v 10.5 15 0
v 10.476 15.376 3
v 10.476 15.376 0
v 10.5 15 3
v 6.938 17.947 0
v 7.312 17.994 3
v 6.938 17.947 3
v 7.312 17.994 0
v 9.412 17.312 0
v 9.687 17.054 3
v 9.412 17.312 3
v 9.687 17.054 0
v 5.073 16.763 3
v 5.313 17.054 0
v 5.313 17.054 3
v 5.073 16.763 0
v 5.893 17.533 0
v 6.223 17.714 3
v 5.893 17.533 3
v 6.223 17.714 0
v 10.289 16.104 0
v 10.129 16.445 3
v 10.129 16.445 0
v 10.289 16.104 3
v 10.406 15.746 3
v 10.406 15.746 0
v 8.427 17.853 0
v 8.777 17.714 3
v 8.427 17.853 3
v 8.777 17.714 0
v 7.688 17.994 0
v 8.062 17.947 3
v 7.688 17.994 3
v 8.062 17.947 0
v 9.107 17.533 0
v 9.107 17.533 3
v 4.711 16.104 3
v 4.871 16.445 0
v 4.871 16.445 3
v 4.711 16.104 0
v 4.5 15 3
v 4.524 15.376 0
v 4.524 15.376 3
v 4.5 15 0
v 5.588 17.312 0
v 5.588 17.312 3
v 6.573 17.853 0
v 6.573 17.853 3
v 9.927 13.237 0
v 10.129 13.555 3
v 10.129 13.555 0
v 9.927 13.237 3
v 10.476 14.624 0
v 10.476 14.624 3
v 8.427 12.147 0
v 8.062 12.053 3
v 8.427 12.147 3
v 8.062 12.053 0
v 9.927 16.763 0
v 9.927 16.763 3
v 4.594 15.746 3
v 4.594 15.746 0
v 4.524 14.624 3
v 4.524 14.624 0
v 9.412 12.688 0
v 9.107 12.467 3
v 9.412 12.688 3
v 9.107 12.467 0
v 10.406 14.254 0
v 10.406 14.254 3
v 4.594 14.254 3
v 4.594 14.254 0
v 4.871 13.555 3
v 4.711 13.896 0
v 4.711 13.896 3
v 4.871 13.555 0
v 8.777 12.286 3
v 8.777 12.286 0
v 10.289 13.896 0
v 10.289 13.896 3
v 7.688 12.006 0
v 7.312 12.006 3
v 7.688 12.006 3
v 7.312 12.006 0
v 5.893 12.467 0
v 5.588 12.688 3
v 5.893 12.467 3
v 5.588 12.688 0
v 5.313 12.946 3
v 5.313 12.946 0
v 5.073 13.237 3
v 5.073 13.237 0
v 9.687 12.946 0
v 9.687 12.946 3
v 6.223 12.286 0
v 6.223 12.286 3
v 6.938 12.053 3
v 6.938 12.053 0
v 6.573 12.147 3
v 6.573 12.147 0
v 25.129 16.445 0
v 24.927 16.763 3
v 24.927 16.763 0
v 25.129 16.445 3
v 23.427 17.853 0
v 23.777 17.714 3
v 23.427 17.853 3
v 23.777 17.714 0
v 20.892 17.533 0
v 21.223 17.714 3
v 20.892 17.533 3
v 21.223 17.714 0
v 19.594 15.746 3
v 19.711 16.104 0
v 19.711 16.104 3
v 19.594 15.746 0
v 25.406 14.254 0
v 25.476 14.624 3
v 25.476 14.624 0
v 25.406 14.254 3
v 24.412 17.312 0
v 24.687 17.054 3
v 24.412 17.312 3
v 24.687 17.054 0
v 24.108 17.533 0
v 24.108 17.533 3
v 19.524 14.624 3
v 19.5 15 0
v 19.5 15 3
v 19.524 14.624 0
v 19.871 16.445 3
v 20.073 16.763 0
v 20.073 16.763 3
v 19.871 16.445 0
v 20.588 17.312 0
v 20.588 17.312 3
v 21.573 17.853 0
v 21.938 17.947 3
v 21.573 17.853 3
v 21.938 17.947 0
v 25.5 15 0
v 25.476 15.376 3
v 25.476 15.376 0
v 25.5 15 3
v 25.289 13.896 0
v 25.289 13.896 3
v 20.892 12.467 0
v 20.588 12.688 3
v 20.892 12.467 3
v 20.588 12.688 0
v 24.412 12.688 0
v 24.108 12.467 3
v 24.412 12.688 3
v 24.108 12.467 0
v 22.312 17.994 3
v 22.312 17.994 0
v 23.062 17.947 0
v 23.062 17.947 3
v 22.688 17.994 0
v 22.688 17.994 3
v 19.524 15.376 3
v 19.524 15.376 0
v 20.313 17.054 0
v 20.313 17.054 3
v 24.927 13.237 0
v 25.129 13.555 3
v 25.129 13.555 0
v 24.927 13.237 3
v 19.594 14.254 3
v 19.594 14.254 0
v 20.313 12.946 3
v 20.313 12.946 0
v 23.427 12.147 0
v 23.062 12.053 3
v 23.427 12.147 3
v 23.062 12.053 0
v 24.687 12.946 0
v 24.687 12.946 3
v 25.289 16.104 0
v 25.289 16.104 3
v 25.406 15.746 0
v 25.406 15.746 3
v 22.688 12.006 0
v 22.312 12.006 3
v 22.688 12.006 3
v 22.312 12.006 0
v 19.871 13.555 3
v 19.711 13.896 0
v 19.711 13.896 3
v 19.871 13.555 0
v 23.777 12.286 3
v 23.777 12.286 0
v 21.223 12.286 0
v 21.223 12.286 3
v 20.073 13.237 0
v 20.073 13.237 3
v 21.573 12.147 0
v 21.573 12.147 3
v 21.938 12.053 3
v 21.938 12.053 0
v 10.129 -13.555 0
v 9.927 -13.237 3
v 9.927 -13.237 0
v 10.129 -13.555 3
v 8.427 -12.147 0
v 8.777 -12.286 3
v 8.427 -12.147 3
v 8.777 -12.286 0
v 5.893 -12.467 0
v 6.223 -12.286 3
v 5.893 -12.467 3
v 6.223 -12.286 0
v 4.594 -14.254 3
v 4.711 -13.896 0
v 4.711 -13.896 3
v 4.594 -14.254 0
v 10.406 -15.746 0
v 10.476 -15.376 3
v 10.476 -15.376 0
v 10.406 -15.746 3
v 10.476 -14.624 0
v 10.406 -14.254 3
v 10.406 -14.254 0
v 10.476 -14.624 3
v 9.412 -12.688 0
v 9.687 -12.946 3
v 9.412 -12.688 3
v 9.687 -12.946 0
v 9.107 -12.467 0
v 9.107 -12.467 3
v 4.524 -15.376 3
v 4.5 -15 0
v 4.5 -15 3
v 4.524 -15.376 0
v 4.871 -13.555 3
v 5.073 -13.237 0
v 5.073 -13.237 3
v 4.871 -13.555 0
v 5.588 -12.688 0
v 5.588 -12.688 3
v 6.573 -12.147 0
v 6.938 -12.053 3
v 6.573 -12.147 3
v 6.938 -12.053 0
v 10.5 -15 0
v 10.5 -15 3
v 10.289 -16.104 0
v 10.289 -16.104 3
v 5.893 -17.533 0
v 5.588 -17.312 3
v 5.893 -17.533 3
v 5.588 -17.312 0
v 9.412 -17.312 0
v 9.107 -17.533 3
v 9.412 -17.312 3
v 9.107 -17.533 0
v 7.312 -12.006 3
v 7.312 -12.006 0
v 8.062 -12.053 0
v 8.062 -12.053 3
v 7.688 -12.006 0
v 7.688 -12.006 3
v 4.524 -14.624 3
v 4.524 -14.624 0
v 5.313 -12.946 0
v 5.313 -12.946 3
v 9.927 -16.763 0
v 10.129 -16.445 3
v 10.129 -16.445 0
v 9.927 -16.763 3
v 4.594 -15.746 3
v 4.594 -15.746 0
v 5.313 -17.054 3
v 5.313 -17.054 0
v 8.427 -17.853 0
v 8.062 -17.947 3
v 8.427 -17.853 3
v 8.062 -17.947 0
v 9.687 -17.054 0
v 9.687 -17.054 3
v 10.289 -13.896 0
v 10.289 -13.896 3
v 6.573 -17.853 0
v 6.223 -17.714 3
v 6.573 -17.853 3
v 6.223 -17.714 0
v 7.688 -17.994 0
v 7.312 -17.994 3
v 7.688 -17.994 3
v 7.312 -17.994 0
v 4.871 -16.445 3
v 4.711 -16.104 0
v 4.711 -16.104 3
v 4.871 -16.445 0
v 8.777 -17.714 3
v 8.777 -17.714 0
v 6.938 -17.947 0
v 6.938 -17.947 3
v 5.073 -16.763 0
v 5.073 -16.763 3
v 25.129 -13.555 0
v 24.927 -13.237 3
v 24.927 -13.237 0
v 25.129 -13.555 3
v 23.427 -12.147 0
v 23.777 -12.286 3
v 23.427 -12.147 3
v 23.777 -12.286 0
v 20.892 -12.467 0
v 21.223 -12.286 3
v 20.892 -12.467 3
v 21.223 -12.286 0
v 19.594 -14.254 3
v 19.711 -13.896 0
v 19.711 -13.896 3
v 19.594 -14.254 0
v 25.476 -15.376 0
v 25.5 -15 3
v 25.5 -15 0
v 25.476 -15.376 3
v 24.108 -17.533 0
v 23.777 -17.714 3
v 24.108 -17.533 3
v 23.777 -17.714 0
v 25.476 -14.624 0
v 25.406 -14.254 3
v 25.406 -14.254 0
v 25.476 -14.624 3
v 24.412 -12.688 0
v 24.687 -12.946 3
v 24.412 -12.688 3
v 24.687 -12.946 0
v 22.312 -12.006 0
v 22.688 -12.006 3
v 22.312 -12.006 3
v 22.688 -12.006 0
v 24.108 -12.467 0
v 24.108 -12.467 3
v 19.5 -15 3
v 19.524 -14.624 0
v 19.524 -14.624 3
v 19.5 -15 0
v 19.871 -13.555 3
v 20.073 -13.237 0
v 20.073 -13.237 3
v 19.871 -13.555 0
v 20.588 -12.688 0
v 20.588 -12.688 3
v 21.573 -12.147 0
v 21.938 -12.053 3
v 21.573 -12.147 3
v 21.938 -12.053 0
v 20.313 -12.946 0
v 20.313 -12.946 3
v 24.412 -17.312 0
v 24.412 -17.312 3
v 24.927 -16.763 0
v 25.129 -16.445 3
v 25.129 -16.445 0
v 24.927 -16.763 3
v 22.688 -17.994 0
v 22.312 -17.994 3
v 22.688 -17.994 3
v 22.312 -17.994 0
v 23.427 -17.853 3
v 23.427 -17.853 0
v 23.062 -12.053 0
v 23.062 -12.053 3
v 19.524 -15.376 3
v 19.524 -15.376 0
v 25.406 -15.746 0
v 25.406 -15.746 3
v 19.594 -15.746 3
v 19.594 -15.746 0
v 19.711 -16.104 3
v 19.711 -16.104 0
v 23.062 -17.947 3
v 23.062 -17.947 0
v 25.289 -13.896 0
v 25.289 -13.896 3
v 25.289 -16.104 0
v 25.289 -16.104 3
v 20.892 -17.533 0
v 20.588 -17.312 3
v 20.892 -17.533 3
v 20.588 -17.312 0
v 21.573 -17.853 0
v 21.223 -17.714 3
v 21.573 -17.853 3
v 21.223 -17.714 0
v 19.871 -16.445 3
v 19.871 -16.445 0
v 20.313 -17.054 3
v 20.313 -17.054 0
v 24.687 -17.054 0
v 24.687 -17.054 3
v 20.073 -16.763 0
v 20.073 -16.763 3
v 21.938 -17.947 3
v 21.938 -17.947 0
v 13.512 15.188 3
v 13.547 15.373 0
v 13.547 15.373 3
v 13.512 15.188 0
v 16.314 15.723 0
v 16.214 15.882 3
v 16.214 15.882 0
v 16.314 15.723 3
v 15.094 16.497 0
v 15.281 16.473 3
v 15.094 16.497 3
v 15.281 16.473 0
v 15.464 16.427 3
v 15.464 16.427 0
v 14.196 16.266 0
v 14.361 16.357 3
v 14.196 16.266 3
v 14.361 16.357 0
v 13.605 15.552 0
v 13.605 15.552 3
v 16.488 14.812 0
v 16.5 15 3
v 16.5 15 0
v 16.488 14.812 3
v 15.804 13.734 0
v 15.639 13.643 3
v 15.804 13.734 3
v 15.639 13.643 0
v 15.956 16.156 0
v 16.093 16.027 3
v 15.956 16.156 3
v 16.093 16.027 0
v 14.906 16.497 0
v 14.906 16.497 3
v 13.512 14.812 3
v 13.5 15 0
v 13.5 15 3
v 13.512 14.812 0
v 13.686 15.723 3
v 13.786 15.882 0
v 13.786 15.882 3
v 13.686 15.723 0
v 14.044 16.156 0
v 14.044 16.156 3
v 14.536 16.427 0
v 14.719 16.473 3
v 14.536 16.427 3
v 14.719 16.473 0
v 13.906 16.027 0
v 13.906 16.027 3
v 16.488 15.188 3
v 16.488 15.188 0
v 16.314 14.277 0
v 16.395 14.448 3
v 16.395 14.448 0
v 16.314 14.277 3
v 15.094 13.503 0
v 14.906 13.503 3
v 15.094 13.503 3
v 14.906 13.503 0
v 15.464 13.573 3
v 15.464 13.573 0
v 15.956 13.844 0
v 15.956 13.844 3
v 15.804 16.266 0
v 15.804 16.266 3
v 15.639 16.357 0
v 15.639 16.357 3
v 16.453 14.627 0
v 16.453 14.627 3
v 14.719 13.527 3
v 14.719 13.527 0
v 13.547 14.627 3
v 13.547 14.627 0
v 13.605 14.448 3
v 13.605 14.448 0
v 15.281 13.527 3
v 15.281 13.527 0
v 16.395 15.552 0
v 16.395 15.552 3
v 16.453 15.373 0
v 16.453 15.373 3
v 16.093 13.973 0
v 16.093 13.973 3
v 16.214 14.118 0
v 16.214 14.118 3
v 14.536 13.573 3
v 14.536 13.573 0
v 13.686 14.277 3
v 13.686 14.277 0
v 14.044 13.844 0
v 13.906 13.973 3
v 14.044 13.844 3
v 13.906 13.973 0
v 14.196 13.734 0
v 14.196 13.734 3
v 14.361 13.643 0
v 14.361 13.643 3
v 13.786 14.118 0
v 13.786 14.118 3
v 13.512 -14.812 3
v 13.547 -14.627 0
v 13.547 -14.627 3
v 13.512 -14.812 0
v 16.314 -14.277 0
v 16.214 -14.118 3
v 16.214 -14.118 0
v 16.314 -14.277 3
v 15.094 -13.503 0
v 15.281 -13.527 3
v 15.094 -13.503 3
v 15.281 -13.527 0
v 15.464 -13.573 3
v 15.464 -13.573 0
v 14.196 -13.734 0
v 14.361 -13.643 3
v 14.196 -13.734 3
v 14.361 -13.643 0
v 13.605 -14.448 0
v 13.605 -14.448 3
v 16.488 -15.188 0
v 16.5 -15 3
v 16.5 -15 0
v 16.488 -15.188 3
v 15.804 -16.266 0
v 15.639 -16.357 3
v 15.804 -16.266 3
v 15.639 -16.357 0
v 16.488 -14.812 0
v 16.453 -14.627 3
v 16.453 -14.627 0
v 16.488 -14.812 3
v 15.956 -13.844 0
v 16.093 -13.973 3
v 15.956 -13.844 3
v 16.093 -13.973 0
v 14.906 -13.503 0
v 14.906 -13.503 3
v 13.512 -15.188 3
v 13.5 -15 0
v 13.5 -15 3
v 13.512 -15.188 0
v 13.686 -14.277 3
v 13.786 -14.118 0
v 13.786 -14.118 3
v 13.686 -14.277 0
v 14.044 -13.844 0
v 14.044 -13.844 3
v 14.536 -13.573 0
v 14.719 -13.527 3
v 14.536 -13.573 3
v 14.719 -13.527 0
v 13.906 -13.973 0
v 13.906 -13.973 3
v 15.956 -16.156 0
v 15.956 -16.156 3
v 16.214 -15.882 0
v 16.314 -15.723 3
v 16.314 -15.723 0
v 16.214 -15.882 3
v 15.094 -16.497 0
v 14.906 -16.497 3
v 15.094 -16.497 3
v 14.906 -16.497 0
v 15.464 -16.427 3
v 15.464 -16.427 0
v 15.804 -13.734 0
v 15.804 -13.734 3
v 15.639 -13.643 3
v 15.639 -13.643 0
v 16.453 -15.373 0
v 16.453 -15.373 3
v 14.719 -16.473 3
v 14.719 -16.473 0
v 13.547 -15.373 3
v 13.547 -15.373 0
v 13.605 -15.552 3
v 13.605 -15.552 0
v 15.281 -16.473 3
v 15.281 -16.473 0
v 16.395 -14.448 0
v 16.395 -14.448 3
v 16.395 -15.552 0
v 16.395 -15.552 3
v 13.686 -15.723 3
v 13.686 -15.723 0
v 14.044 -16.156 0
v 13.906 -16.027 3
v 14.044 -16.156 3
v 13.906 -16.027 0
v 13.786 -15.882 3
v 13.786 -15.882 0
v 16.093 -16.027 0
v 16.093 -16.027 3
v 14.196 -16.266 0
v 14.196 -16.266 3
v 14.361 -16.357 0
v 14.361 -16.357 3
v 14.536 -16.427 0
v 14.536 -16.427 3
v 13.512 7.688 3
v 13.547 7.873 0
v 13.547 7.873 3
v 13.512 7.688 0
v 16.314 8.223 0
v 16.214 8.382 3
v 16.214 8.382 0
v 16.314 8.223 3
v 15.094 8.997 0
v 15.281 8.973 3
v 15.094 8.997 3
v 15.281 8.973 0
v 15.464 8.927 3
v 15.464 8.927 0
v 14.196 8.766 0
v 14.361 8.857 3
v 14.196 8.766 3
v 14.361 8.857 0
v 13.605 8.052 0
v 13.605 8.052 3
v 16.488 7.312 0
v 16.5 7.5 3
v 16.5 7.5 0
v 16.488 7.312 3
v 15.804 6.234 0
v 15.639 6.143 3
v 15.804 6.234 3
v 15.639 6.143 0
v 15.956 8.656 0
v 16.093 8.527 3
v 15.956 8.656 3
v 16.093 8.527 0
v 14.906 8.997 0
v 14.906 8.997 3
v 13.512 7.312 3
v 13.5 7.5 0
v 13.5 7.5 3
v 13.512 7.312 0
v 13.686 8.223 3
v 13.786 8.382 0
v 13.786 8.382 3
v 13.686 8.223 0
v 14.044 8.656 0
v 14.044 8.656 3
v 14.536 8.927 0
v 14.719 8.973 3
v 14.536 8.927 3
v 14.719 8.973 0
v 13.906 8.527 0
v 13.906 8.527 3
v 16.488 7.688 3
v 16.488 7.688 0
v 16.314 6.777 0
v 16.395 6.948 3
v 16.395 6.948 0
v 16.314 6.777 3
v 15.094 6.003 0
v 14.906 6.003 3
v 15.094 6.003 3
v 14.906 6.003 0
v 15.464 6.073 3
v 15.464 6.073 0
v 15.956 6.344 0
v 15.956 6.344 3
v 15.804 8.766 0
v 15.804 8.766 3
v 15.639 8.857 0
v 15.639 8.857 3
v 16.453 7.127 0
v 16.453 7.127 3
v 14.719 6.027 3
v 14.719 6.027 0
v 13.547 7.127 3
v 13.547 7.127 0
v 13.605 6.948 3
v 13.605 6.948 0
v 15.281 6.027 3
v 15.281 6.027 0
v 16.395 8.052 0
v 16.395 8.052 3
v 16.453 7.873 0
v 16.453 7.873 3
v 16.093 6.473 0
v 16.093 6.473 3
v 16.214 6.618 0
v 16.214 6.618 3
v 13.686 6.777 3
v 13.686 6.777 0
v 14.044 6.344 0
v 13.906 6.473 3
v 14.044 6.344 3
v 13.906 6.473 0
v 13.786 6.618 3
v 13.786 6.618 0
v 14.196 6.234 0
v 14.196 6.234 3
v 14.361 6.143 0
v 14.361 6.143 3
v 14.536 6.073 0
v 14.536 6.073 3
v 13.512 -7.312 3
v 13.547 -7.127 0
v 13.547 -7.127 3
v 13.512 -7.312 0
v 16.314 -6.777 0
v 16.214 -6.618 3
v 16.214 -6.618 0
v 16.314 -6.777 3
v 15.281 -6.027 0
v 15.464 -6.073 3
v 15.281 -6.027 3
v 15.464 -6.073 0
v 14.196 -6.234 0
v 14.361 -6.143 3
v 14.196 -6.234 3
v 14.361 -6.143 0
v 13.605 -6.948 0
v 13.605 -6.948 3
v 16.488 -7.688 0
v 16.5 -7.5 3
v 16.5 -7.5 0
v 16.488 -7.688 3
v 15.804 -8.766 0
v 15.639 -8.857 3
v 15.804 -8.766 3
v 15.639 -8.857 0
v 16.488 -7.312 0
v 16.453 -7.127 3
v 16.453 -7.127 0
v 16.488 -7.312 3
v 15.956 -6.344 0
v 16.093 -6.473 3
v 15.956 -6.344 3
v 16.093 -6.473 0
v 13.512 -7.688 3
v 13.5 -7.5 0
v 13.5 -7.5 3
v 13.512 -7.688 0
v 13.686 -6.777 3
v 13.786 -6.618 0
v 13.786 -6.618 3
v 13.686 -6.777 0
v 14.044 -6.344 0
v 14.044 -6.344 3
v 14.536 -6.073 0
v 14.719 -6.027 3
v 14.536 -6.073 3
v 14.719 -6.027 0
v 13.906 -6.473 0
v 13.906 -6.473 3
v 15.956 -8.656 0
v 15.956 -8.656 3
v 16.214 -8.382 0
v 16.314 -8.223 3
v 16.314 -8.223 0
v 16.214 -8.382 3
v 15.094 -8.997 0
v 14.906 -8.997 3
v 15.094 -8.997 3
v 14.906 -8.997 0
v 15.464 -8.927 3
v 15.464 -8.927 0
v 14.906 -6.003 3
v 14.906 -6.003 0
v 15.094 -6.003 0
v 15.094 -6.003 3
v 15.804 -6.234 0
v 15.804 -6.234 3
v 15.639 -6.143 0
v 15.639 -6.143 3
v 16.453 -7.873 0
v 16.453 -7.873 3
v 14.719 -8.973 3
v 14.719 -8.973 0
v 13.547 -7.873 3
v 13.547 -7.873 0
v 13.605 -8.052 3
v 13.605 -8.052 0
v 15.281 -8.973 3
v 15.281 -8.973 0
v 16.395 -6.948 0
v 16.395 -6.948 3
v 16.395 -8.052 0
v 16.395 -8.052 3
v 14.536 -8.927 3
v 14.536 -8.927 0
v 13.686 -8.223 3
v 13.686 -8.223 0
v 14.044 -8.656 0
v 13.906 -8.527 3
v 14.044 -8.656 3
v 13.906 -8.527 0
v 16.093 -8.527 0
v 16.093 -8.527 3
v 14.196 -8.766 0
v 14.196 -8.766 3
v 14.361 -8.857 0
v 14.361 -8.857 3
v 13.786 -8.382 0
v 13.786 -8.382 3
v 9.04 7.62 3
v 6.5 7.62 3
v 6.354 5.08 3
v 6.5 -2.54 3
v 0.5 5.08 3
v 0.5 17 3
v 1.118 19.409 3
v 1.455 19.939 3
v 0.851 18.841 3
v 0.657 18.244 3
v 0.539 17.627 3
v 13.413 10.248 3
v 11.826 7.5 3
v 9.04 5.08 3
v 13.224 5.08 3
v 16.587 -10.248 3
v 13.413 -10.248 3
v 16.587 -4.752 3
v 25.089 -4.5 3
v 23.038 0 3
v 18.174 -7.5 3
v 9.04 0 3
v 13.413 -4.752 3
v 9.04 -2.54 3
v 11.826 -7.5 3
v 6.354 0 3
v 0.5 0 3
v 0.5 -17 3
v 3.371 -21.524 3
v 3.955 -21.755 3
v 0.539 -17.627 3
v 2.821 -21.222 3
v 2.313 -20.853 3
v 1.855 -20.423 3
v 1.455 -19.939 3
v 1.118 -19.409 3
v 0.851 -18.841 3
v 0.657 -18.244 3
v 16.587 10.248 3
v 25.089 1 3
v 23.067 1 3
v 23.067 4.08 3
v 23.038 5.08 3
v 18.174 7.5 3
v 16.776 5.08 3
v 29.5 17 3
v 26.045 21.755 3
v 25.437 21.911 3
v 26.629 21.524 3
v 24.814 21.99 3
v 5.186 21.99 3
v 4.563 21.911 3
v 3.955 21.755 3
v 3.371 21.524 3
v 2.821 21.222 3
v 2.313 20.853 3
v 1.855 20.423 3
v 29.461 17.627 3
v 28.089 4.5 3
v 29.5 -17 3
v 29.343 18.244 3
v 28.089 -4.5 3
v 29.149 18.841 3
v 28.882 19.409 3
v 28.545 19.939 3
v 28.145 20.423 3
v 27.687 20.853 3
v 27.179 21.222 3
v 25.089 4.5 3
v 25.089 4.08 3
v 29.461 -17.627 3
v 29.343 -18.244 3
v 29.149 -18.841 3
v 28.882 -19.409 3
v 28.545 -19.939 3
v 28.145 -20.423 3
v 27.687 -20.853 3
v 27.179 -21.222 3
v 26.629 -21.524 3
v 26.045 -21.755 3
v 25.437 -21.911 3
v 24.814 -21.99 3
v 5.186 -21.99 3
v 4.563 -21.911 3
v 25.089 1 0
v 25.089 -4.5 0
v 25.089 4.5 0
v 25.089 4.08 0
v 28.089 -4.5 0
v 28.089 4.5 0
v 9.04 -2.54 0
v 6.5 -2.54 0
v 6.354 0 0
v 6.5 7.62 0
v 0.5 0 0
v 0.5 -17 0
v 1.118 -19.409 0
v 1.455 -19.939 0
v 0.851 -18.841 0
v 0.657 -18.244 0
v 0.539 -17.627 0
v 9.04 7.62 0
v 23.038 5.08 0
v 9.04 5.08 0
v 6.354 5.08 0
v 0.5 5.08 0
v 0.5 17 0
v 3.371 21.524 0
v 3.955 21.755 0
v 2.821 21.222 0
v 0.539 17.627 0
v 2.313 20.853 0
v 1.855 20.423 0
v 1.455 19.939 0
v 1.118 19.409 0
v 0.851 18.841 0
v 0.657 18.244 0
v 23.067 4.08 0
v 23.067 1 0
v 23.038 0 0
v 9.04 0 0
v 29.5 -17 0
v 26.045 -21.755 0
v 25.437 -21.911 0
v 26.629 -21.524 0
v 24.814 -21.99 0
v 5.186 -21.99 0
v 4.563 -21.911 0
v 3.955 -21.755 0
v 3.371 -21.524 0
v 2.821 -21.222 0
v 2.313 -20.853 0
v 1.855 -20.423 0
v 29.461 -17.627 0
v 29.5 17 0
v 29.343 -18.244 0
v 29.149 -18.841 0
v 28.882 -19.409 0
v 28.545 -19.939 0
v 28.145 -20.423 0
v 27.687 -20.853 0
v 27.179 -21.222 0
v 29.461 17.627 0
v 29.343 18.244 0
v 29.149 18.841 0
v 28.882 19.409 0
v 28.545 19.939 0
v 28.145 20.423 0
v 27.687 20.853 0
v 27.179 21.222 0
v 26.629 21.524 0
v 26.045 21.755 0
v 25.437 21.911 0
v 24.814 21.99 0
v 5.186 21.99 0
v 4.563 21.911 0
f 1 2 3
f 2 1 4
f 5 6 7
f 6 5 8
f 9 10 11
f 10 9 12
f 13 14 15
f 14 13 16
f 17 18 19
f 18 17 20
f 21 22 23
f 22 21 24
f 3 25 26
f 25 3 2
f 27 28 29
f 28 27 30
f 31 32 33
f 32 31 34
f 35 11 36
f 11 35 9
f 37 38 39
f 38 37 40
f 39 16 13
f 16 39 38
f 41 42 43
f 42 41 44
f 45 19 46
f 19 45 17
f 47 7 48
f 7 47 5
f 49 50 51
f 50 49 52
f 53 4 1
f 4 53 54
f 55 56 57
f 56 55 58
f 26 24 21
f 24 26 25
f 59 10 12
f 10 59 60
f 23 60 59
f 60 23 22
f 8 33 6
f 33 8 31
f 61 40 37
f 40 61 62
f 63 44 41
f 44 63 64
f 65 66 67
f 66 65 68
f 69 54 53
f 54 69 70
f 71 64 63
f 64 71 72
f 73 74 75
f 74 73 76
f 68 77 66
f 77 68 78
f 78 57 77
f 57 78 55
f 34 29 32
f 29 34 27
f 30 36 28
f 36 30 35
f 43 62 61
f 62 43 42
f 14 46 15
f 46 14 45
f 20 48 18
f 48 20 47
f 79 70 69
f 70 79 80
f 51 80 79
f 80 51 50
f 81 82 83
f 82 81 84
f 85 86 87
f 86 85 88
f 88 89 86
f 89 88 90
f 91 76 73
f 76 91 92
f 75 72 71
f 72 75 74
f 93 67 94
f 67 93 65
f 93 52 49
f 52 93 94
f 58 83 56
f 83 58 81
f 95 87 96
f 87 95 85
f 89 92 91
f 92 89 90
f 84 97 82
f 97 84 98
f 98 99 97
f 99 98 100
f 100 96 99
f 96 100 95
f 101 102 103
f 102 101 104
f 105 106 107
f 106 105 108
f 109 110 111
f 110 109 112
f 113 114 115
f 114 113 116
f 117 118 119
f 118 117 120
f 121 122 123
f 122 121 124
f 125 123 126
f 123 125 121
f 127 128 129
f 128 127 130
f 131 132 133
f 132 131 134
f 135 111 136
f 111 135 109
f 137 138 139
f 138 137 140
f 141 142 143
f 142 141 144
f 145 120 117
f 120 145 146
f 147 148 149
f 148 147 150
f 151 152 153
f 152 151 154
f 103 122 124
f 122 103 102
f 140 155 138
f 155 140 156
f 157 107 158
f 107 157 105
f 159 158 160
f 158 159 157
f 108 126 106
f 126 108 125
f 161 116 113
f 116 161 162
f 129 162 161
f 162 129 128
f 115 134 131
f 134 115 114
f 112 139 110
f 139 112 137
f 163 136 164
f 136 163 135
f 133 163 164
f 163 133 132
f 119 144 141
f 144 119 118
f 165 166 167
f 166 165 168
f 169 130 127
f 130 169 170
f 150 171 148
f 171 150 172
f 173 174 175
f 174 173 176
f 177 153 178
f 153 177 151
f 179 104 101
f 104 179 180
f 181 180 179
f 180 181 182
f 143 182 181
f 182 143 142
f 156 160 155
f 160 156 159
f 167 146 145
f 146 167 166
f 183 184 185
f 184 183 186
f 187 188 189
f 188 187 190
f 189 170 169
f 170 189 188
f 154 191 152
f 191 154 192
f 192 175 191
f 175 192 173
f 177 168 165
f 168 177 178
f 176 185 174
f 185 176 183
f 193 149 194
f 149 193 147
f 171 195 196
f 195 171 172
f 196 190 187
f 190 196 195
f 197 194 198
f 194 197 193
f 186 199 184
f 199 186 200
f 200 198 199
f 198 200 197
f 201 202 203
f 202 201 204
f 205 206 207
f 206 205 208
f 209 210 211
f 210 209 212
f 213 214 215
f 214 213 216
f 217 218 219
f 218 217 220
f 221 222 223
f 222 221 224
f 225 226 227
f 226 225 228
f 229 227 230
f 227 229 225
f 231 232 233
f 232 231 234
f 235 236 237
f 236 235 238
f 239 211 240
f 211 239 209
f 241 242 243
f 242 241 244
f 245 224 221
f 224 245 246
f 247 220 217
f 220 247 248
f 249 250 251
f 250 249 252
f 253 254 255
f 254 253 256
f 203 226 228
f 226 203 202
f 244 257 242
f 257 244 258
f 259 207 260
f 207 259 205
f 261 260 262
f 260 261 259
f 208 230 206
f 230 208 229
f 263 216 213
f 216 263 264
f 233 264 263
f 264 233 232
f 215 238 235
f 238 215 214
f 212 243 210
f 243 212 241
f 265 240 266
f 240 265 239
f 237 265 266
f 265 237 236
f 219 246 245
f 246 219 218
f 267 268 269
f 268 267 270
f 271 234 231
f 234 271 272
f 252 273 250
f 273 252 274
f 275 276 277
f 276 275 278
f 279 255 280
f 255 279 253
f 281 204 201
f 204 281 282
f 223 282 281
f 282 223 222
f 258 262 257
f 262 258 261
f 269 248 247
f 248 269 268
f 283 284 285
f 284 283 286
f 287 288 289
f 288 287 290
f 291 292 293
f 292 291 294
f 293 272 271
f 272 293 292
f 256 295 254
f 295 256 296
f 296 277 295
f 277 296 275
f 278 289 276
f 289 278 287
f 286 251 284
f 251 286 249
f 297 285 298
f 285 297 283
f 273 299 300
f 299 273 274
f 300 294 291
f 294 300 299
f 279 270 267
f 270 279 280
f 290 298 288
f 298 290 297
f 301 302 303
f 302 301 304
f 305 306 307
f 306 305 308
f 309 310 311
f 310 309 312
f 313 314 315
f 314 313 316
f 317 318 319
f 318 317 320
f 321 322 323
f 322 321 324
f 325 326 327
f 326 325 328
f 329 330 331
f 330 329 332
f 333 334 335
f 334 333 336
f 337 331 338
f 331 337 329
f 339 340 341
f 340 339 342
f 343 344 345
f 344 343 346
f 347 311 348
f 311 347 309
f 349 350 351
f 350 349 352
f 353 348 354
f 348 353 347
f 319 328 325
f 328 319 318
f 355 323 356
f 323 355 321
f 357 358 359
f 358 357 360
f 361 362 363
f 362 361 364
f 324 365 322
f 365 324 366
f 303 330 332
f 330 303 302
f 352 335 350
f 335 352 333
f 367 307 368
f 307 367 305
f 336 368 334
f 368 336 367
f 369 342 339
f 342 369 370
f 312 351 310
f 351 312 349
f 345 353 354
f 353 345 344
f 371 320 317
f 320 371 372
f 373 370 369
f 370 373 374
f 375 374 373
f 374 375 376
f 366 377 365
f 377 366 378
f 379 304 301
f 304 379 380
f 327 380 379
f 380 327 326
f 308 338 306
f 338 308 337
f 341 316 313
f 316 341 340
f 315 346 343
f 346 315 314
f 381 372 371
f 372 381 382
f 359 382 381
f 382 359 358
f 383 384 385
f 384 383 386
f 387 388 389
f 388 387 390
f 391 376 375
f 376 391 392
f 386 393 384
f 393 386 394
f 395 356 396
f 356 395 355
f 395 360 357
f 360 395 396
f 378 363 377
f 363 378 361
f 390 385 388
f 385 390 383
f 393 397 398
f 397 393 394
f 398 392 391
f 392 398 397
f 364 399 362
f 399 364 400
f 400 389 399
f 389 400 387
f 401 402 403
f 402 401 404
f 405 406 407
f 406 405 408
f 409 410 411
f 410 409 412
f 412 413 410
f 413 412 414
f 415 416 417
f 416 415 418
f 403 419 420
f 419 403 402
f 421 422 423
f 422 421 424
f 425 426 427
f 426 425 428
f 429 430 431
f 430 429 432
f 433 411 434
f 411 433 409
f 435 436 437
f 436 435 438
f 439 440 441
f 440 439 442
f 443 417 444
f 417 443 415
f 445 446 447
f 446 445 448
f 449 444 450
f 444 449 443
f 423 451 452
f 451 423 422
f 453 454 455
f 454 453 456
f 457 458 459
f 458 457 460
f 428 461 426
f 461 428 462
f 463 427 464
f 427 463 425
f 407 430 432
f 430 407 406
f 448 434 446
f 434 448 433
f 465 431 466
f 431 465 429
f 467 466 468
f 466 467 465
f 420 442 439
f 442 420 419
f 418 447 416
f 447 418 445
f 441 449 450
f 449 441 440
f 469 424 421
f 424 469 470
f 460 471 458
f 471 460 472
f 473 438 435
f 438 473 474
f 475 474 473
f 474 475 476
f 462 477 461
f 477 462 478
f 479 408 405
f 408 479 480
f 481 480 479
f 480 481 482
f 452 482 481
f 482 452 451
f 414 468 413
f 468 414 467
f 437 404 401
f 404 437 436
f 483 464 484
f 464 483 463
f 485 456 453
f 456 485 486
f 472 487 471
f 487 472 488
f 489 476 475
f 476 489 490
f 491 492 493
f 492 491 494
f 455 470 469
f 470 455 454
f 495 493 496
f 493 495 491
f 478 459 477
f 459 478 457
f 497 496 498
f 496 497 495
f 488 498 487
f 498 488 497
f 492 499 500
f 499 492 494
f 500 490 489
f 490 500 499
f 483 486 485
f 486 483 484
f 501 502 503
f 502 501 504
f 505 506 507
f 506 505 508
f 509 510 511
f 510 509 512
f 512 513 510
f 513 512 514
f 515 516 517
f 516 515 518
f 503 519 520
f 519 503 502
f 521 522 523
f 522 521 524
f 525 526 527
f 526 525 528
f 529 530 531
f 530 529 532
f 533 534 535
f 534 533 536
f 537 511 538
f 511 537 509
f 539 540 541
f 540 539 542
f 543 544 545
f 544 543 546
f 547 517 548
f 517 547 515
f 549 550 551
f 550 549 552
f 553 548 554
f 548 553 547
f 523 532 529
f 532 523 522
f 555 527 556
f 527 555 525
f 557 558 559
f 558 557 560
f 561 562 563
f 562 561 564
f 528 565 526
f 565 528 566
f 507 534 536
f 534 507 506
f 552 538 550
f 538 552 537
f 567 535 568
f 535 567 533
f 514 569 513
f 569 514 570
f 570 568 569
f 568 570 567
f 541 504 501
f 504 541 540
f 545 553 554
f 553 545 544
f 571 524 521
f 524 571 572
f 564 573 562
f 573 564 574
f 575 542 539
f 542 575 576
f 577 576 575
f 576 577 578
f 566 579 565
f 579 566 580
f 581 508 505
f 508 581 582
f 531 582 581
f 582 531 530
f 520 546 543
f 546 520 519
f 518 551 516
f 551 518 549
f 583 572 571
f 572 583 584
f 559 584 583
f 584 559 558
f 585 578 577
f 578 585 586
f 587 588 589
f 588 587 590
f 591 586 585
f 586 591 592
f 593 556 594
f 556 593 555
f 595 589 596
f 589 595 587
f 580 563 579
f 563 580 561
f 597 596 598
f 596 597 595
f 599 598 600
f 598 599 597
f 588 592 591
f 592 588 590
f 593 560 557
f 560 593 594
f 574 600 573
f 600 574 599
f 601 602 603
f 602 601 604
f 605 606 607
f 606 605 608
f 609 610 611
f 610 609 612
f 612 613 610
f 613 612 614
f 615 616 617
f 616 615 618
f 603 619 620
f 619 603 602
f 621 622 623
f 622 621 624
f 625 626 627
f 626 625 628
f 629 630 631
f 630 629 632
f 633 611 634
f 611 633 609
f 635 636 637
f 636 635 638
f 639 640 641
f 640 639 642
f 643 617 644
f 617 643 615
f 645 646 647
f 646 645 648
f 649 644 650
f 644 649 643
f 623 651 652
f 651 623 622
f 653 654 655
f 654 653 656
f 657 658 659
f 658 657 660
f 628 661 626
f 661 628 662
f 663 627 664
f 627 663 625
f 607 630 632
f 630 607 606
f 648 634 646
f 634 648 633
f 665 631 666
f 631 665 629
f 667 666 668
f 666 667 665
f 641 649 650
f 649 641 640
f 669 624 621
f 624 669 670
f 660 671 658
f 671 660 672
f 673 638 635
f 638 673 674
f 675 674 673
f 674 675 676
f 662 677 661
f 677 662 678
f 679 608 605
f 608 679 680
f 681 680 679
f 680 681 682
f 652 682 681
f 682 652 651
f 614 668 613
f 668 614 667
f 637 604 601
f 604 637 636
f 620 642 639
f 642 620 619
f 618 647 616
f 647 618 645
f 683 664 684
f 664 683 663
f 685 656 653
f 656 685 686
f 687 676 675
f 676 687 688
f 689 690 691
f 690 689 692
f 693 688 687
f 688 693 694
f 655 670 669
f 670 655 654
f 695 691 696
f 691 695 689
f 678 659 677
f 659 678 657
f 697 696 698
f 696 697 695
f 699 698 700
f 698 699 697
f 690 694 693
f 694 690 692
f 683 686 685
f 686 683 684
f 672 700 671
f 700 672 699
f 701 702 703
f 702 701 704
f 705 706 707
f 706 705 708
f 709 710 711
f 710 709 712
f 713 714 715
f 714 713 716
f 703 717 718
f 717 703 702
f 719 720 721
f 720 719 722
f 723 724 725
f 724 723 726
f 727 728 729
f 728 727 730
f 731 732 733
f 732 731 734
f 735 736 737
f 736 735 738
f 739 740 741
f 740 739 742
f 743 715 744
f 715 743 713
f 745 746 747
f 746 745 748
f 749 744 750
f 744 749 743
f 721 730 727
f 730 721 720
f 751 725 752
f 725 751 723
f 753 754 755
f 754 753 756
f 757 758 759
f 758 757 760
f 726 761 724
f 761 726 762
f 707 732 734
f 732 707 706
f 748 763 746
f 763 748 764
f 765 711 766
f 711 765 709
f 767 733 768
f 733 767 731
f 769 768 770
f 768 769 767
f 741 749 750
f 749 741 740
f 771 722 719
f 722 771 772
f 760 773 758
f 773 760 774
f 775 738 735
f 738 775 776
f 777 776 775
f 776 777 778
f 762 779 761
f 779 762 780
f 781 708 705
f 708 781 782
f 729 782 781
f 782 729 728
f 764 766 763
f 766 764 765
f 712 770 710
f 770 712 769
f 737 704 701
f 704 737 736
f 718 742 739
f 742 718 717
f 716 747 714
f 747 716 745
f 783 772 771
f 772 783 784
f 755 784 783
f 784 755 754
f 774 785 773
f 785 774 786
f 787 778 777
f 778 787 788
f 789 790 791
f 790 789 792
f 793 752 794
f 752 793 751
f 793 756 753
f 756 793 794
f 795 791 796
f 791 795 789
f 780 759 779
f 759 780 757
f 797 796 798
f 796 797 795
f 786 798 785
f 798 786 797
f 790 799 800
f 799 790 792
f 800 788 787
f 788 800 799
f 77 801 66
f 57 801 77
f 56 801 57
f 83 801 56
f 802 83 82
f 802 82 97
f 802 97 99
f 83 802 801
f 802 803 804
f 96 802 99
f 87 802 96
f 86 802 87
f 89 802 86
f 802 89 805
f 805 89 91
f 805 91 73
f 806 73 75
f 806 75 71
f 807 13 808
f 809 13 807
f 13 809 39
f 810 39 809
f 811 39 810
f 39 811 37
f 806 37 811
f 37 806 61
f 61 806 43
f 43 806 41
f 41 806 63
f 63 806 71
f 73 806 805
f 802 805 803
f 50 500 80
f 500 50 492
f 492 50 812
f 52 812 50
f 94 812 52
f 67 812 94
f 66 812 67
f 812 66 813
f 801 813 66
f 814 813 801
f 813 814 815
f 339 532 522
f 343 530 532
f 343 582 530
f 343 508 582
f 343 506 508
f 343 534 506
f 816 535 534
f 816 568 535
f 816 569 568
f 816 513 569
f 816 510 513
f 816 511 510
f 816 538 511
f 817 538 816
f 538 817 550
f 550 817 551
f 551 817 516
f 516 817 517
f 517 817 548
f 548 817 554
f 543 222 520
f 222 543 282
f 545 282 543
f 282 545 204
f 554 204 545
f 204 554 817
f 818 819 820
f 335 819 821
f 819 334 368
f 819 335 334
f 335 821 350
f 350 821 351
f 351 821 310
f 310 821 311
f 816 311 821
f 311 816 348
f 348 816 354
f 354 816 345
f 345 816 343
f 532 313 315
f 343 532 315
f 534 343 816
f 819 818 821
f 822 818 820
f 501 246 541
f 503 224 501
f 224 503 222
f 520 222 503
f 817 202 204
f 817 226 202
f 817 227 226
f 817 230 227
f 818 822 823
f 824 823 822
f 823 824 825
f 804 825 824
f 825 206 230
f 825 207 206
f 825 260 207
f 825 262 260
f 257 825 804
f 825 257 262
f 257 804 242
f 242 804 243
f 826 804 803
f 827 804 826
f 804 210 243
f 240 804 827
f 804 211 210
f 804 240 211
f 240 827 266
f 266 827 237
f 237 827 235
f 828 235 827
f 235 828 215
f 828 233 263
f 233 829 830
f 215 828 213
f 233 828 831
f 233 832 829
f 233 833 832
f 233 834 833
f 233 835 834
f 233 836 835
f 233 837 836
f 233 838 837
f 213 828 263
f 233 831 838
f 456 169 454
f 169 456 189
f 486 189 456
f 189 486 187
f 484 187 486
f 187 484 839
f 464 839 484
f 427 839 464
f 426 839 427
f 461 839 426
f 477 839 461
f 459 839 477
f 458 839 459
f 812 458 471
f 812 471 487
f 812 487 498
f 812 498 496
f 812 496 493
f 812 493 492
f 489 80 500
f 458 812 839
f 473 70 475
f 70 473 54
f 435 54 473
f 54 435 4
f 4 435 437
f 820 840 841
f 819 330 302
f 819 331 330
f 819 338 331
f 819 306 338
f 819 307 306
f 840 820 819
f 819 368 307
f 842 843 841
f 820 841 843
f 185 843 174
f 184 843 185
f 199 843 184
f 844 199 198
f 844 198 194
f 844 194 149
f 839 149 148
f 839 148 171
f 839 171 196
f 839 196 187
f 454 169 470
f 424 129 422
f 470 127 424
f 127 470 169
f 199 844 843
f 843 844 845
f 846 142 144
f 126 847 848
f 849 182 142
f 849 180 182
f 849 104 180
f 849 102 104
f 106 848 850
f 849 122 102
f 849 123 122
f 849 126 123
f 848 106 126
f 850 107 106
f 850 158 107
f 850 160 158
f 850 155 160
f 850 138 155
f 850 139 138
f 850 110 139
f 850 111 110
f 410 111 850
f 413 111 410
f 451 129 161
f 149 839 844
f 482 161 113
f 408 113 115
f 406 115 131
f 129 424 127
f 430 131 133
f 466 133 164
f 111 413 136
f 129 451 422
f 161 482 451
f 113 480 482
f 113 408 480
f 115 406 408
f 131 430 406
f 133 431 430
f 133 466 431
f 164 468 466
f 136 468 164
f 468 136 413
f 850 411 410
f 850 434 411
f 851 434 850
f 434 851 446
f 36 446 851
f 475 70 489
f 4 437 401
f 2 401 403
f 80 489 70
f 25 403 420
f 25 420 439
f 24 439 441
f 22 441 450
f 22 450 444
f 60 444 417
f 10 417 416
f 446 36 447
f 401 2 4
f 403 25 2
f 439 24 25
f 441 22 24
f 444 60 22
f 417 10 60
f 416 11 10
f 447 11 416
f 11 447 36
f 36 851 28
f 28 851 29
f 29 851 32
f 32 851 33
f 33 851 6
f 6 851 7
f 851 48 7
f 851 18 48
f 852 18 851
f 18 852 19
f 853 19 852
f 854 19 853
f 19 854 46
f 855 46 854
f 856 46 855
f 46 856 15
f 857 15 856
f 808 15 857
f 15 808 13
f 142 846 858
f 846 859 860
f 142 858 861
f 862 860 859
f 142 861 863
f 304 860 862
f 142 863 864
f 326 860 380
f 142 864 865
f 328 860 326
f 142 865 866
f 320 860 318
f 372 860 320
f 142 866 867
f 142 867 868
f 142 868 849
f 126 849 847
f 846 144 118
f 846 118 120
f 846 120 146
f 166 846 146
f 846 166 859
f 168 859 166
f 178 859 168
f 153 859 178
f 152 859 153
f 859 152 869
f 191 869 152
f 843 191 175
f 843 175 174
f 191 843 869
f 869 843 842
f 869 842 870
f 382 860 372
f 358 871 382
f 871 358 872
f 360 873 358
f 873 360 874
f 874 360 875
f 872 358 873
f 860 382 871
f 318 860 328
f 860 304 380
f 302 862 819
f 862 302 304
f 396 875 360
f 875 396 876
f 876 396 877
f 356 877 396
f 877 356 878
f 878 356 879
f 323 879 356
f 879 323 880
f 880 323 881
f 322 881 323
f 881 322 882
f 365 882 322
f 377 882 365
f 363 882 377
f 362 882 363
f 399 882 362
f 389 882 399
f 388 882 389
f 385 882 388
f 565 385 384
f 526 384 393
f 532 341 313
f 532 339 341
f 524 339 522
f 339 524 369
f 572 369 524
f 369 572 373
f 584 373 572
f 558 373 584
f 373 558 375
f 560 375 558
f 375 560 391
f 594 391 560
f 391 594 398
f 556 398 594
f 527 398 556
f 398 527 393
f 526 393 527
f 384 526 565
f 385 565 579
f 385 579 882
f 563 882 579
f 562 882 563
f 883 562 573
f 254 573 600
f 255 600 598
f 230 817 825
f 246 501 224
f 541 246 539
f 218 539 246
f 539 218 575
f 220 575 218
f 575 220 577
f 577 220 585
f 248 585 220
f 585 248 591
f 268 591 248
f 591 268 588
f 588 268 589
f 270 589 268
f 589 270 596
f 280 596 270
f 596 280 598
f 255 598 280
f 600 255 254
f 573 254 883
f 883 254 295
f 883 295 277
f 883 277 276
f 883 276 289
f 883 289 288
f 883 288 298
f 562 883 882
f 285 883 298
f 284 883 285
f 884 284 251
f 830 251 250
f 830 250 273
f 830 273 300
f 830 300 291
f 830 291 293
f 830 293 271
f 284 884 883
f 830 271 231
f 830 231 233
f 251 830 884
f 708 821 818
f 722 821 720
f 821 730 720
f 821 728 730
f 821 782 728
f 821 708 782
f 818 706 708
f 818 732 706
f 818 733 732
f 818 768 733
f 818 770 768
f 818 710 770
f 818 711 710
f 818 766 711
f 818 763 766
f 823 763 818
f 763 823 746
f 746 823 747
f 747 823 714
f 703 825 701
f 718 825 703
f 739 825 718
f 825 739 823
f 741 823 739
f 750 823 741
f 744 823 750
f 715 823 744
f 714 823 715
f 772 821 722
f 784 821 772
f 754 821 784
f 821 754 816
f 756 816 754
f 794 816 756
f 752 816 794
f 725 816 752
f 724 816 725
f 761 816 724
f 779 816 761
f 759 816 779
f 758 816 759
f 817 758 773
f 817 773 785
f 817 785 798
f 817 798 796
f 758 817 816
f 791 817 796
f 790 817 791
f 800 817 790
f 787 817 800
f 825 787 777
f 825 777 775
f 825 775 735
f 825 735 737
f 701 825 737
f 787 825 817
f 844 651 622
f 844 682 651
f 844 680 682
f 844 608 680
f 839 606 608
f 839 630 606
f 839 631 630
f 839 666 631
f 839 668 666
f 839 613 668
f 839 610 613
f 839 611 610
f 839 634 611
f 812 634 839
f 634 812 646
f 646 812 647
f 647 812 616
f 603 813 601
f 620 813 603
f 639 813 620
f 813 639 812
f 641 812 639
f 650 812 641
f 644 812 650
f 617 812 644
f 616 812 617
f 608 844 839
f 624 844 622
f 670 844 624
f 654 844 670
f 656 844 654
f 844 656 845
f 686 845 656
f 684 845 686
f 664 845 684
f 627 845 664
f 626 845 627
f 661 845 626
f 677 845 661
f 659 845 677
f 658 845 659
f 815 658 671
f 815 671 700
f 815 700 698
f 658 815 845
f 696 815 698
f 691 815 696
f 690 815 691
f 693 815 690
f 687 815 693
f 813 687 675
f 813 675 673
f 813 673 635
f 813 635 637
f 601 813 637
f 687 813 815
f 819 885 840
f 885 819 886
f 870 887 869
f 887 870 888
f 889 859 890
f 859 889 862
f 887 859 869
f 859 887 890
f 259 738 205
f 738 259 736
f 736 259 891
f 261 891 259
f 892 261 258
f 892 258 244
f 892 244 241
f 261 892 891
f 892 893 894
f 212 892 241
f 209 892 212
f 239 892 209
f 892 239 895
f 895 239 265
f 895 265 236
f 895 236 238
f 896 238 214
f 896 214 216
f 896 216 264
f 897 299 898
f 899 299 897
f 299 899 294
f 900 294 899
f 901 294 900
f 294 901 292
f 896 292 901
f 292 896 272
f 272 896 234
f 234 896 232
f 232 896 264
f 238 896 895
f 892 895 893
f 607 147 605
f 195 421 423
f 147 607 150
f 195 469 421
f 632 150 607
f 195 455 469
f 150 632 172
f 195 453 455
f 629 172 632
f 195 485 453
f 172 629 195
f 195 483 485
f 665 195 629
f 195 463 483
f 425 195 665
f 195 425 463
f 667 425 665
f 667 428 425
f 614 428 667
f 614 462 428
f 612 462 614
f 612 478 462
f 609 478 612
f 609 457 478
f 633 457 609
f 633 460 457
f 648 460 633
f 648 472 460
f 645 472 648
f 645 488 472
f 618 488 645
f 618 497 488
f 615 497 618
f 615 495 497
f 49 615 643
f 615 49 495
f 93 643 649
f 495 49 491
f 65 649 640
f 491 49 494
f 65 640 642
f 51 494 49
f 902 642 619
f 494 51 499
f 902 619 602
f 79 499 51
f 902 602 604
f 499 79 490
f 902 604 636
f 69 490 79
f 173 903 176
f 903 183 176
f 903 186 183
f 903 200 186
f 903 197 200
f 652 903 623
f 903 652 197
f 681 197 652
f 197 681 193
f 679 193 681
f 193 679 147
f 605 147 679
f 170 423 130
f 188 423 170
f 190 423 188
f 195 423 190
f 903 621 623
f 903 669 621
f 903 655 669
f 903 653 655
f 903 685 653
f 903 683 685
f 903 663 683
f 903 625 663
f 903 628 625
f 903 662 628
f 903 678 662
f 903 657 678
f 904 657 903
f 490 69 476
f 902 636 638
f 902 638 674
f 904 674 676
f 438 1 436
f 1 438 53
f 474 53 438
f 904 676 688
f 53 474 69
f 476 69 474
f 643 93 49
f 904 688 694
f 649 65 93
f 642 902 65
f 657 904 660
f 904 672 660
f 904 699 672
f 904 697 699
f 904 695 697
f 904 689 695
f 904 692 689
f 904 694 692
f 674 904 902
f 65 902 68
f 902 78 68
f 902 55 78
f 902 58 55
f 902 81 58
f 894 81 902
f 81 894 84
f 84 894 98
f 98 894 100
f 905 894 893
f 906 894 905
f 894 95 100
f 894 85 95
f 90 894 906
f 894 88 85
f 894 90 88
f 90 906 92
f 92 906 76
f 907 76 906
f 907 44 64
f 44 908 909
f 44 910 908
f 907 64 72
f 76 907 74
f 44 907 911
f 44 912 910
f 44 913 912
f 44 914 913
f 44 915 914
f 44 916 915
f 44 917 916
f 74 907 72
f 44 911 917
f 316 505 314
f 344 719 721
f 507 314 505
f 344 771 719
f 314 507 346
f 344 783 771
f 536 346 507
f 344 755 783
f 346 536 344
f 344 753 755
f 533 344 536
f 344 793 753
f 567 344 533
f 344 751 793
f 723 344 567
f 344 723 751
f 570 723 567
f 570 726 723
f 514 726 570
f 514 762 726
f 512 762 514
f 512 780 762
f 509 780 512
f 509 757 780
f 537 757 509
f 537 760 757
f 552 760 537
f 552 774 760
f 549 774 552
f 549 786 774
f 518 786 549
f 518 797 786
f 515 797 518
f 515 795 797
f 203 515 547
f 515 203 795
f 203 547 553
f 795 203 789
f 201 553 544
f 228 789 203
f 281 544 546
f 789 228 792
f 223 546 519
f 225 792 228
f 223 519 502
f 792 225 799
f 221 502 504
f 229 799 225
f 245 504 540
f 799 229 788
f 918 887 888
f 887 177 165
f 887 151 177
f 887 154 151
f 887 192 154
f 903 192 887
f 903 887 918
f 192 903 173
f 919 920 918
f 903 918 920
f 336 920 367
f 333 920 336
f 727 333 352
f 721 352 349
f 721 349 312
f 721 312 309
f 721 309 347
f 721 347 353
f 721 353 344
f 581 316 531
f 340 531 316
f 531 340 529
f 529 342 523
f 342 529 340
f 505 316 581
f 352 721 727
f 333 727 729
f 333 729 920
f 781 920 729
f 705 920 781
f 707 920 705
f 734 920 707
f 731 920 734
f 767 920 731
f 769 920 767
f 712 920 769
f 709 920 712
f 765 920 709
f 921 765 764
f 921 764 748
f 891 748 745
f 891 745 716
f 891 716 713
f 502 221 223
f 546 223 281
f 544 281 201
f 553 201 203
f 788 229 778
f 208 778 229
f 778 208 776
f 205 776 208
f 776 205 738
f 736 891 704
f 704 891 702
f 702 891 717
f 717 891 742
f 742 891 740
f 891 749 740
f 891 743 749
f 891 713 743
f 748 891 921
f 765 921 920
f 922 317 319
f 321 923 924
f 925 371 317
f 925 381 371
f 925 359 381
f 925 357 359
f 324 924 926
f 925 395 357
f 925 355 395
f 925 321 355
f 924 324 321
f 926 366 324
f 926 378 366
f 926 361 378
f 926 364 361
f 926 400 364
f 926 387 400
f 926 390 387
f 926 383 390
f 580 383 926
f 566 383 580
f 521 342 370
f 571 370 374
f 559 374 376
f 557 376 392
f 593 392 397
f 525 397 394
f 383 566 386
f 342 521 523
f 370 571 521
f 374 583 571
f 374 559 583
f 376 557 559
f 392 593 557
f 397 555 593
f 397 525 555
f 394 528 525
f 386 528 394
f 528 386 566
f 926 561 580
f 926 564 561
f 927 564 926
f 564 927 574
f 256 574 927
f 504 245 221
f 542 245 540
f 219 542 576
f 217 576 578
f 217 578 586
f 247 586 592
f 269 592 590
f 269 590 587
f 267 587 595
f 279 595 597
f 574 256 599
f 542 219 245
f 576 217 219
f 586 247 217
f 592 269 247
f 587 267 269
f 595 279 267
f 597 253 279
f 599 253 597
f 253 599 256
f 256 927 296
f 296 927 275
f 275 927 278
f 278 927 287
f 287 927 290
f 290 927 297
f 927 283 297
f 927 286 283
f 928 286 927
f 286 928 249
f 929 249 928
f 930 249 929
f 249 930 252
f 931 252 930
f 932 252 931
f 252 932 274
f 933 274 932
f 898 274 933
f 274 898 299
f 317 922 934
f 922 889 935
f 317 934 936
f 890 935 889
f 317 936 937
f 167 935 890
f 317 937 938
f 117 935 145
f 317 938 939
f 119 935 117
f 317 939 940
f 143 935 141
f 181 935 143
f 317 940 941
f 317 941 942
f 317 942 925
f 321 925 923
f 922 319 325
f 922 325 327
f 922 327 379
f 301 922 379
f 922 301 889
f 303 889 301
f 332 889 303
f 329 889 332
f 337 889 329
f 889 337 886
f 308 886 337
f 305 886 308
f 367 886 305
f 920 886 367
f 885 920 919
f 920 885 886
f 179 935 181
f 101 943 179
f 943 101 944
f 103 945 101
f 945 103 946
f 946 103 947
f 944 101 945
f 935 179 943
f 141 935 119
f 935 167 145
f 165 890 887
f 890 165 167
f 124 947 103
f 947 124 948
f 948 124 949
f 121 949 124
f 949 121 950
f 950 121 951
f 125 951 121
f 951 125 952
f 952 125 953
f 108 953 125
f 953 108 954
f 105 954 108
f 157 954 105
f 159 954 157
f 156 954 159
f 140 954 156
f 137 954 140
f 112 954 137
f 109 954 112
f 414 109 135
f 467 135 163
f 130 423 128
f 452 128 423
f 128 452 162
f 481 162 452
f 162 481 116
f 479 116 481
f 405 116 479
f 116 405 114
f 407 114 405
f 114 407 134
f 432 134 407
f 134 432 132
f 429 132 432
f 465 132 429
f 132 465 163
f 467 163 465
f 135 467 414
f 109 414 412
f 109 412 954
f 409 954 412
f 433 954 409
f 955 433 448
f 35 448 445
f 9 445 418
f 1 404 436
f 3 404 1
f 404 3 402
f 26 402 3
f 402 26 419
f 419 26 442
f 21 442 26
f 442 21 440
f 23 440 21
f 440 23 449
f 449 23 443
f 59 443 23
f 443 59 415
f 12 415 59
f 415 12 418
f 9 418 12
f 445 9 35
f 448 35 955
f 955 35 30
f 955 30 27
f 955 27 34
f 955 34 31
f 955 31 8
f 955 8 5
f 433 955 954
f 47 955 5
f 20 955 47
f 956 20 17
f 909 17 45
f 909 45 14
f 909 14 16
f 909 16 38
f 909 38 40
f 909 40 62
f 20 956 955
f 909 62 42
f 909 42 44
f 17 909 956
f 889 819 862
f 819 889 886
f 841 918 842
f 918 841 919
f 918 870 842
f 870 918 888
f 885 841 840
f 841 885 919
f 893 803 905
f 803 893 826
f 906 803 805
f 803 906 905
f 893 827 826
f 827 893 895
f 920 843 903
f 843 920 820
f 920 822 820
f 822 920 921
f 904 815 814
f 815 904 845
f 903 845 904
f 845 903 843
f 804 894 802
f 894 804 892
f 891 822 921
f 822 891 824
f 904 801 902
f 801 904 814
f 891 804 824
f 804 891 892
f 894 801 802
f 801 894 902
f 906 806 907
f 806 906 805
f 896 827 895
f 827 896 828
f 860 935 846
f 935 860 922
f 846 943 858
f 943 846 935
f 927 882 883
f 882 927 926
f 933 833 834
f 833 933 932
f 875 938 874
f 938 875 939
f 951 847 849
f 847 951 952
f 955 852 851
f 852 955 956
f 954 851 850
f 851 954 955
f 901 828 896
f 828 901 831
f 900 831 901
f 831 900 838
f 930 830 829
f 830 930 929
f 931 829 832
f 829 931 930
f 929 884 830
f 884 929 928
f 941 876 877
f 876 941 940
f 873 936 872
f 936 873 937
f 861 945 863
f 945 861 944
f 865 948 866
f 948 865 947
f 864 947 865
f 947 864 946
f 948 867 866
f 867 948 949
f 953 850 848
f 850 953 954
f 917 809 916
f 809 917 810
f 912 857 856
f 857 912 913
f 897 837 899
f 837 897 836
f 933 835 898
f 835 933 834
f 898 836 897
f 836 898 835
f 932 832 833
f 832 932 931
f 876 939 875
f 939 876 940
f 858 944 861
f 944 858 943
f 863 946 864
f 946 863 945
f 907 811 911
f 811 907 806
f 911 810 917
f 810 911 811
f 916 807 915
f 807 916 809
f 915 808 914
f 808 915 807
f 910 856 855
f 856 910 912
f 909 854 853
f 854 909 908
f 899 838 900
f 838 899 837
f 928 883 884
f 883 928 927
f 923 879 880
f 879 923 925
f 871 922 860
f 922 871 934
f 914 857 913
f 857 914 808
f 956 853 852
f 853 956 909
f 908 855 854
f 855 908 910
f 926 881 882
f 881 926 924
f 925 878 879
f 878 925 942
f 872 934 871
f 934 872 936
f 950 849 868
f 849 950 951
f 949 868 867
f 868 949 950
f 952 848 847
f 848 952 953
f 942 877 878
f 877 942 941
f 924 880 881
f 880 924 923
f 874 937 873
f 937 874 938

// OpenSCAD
$fn = 50;


difference() {
	union() {
		translate(v = [15.0000000000, 0, 0]) {
			rotate(a = [0, 0, 0]) {
				hull() {
					translate(v = [-9.5000000000, 17.0000000000, 0]) {
						rotate(a = [0, 0, 0]) {
							translate(v = [0, 0, 0]) {
								rotate(a = [0, 0, 0]) {
									cylinder(h = 3, r = 5);
								}
							}
						}
					}
					translate(v = [9.5000000000, 17.0000000000, 0]) {
						rotate(a = [0, 0, 0]) {
							translate(v = [0, 0, 0]) {
								rotate(a = [0, 0, 0]) {
									cylinder(h = 3, r = 5);
								}
							}
						}
					}
					translate(v = [-9.5000000000, -17.0000000000, 0]) {
						rotate(a = [0, 0, 0]) {
							translate(v = [0, 0, 0]) {
								rotate(a = [0, 0, 0]) {
									cylinder(h = 3, r = 5);
								}
							}
						}
					}
					translate(v = [9.5000000000, -17.0000000000, 0]) {
						rotate(a = [0, 0, 0]) {
							translate(v = [0, 0, 0]) {
								rotate(a = [0, 0, 0]) {
									cylinder(h = 3, r = 5);
								}
							}
						}
					}
				}
			}
		}
	}
	union() {
		translate(v = [7.5000000000, 15.0000000000, -125.0000000000]) {
			rotate(a = [0, 0, 0]) {
				cylinder(h = 250, r = 3.0000000000);
			}
		}
		translate(v = [22.5000000000, 15.0000000000, -125.0000000000]) {
			rotate(a = [0, 0, 0]) {
				cylinder(h = 250, r = 3.0000000000);
			}
		}
		translate(v = [7.5000000000, -15.0000000000, -125.0000000000]) {
			rotate(a = [0, 0, 0]) {
				cylinder(h = 250, r = 3.0000000000);
			}
		}
		translate(v = [22.5000000000, -15.0000000000, -125.0000000000]) {
			rotate(a = [0, 0, 0]) {
				cylinder(h = 250, r = 3.0000000000);
			}
		}
		translate(v = [7.5000000000, 15.0000000000, -125.0000000000]) {
			rotate(a = [0, 0, 0]) {
				cylinder(h = 250, r = 1.5000000000);
			}
		}
		translate(v = [15.0000000000, 15.0000000000, -125.0000000000]) {
			rotate(a = [0, 0, 0]) {
				cylinder(h = 250, r = 1.5000000000);
			}
		}
		translate(v = [22.5000000000, 15.0000000000, -125.0000000000]) {
			rotate(a = [0, 0, 0]) {
				cylinder(h = 250, r = 1.5000000000);
			}
		}
		translate(v = [7.5000000000, -15.0000000000, -125.0000000000]) {
			rotate(a = [0, 0, 0]) {
				cylinder(h = 250, r = 1.5000000000);
			}
		}
		translate(v = [15.0000000000, -15.0000000000, -125.0000000000]) {
			rotate(a = [0, 0, 0]) {
				cylinder(h = 250, r = 1.5000000000);
			}
		}
		translate(v = [22.5000000000, -15.0000000000, -125.0000000000]) {
			rotate(a = [0, 0, 0]) {
				cylinder(h = 250, r = 1.5000000000);
			}
		}
		translate(v = [15, 7.5000000000, -125.0000000000]) {
			rotate(a = [0, 0, 0]) {
				cylinder(h = 250, r = 1.5000000000);
			}
		}
		translate(v = [15, -7.5000000000, -125.0000000000]) {
			rotate(a = [0, 0, 0]) {
				cylinder(h = 250, r = 1.5000000000);
			}
		}
		translate(v = [15, 7.5000000000, 3]) {
			rotate(a = [0, 0, 0]) {
				translate(v = [0, 0, 0]) {
					rotate(a = [0, 0, 0]) {
						linear_extrude(height = 2.5000000000) {
							polygon(points = [[3.1735000000, 0.0000000000], [1.5867500000, 2.7483316189], [-1.5867500000, 2.7483316189], [-3.1735000000, 0.0000000000], [-1.5867500000, -2.7483316189], [1.5867500000, -2.7483316189]]);
						}
					}
				}
			}
		}
		translate(v = [15, -7.5000000000, 3]) {
			rotate(a = [0, 0, 0]) {
				translate(v = [0, 0, 0]) {
					rotate(a = [0, 0, 0]) {
						linear_extrude(height = 2.5000000000) {
							polygon(points = [[3.1735000000, 0.0000000000], [1.5867500000, 2.7483316189], [-1.5867500000, 2.7483316189], [-3.1735000000, 0.0000000000], [-1.5867500000, -2.7483316189], [1.5867500000, -2.7483316189]]);
						}
					}
				}
			}
		}
		translate(v = [25.0890000000, -4.5000000000, 0]) {
			rotate(a = [0, 0, 0]) {
				cube(size = [3, 9, 10]);
			}
		}
		translate(v = [23.0670000000, 1.0000000000, 0]) {
			rotate(a = [0, 0, 0]) {
				cube(size = [5, 3.0800000000, 3]);
			}
		}
		translate(v = [0.3540000000, 0.0000000000, 0]) {
			rotate(a = [0, 0, 0]) {
				cube(size = [6, 5.0800000000, 3]);
			}
		}
		translate(v = [9.0380000000, 0.0000000000, 0]) {
			rotate(a = [0, 0, 0]) {
				cube(size = [14, 5.0800000000, 3]);
			}
		}
		translate(v = [6.5000000000, -2.5400000000, 0]) {
			rotate(a = [0, 0, 0]) {
				cube(size = [2.5400000000, 10.1600000000, 3]);
			}
		}
	}
}
